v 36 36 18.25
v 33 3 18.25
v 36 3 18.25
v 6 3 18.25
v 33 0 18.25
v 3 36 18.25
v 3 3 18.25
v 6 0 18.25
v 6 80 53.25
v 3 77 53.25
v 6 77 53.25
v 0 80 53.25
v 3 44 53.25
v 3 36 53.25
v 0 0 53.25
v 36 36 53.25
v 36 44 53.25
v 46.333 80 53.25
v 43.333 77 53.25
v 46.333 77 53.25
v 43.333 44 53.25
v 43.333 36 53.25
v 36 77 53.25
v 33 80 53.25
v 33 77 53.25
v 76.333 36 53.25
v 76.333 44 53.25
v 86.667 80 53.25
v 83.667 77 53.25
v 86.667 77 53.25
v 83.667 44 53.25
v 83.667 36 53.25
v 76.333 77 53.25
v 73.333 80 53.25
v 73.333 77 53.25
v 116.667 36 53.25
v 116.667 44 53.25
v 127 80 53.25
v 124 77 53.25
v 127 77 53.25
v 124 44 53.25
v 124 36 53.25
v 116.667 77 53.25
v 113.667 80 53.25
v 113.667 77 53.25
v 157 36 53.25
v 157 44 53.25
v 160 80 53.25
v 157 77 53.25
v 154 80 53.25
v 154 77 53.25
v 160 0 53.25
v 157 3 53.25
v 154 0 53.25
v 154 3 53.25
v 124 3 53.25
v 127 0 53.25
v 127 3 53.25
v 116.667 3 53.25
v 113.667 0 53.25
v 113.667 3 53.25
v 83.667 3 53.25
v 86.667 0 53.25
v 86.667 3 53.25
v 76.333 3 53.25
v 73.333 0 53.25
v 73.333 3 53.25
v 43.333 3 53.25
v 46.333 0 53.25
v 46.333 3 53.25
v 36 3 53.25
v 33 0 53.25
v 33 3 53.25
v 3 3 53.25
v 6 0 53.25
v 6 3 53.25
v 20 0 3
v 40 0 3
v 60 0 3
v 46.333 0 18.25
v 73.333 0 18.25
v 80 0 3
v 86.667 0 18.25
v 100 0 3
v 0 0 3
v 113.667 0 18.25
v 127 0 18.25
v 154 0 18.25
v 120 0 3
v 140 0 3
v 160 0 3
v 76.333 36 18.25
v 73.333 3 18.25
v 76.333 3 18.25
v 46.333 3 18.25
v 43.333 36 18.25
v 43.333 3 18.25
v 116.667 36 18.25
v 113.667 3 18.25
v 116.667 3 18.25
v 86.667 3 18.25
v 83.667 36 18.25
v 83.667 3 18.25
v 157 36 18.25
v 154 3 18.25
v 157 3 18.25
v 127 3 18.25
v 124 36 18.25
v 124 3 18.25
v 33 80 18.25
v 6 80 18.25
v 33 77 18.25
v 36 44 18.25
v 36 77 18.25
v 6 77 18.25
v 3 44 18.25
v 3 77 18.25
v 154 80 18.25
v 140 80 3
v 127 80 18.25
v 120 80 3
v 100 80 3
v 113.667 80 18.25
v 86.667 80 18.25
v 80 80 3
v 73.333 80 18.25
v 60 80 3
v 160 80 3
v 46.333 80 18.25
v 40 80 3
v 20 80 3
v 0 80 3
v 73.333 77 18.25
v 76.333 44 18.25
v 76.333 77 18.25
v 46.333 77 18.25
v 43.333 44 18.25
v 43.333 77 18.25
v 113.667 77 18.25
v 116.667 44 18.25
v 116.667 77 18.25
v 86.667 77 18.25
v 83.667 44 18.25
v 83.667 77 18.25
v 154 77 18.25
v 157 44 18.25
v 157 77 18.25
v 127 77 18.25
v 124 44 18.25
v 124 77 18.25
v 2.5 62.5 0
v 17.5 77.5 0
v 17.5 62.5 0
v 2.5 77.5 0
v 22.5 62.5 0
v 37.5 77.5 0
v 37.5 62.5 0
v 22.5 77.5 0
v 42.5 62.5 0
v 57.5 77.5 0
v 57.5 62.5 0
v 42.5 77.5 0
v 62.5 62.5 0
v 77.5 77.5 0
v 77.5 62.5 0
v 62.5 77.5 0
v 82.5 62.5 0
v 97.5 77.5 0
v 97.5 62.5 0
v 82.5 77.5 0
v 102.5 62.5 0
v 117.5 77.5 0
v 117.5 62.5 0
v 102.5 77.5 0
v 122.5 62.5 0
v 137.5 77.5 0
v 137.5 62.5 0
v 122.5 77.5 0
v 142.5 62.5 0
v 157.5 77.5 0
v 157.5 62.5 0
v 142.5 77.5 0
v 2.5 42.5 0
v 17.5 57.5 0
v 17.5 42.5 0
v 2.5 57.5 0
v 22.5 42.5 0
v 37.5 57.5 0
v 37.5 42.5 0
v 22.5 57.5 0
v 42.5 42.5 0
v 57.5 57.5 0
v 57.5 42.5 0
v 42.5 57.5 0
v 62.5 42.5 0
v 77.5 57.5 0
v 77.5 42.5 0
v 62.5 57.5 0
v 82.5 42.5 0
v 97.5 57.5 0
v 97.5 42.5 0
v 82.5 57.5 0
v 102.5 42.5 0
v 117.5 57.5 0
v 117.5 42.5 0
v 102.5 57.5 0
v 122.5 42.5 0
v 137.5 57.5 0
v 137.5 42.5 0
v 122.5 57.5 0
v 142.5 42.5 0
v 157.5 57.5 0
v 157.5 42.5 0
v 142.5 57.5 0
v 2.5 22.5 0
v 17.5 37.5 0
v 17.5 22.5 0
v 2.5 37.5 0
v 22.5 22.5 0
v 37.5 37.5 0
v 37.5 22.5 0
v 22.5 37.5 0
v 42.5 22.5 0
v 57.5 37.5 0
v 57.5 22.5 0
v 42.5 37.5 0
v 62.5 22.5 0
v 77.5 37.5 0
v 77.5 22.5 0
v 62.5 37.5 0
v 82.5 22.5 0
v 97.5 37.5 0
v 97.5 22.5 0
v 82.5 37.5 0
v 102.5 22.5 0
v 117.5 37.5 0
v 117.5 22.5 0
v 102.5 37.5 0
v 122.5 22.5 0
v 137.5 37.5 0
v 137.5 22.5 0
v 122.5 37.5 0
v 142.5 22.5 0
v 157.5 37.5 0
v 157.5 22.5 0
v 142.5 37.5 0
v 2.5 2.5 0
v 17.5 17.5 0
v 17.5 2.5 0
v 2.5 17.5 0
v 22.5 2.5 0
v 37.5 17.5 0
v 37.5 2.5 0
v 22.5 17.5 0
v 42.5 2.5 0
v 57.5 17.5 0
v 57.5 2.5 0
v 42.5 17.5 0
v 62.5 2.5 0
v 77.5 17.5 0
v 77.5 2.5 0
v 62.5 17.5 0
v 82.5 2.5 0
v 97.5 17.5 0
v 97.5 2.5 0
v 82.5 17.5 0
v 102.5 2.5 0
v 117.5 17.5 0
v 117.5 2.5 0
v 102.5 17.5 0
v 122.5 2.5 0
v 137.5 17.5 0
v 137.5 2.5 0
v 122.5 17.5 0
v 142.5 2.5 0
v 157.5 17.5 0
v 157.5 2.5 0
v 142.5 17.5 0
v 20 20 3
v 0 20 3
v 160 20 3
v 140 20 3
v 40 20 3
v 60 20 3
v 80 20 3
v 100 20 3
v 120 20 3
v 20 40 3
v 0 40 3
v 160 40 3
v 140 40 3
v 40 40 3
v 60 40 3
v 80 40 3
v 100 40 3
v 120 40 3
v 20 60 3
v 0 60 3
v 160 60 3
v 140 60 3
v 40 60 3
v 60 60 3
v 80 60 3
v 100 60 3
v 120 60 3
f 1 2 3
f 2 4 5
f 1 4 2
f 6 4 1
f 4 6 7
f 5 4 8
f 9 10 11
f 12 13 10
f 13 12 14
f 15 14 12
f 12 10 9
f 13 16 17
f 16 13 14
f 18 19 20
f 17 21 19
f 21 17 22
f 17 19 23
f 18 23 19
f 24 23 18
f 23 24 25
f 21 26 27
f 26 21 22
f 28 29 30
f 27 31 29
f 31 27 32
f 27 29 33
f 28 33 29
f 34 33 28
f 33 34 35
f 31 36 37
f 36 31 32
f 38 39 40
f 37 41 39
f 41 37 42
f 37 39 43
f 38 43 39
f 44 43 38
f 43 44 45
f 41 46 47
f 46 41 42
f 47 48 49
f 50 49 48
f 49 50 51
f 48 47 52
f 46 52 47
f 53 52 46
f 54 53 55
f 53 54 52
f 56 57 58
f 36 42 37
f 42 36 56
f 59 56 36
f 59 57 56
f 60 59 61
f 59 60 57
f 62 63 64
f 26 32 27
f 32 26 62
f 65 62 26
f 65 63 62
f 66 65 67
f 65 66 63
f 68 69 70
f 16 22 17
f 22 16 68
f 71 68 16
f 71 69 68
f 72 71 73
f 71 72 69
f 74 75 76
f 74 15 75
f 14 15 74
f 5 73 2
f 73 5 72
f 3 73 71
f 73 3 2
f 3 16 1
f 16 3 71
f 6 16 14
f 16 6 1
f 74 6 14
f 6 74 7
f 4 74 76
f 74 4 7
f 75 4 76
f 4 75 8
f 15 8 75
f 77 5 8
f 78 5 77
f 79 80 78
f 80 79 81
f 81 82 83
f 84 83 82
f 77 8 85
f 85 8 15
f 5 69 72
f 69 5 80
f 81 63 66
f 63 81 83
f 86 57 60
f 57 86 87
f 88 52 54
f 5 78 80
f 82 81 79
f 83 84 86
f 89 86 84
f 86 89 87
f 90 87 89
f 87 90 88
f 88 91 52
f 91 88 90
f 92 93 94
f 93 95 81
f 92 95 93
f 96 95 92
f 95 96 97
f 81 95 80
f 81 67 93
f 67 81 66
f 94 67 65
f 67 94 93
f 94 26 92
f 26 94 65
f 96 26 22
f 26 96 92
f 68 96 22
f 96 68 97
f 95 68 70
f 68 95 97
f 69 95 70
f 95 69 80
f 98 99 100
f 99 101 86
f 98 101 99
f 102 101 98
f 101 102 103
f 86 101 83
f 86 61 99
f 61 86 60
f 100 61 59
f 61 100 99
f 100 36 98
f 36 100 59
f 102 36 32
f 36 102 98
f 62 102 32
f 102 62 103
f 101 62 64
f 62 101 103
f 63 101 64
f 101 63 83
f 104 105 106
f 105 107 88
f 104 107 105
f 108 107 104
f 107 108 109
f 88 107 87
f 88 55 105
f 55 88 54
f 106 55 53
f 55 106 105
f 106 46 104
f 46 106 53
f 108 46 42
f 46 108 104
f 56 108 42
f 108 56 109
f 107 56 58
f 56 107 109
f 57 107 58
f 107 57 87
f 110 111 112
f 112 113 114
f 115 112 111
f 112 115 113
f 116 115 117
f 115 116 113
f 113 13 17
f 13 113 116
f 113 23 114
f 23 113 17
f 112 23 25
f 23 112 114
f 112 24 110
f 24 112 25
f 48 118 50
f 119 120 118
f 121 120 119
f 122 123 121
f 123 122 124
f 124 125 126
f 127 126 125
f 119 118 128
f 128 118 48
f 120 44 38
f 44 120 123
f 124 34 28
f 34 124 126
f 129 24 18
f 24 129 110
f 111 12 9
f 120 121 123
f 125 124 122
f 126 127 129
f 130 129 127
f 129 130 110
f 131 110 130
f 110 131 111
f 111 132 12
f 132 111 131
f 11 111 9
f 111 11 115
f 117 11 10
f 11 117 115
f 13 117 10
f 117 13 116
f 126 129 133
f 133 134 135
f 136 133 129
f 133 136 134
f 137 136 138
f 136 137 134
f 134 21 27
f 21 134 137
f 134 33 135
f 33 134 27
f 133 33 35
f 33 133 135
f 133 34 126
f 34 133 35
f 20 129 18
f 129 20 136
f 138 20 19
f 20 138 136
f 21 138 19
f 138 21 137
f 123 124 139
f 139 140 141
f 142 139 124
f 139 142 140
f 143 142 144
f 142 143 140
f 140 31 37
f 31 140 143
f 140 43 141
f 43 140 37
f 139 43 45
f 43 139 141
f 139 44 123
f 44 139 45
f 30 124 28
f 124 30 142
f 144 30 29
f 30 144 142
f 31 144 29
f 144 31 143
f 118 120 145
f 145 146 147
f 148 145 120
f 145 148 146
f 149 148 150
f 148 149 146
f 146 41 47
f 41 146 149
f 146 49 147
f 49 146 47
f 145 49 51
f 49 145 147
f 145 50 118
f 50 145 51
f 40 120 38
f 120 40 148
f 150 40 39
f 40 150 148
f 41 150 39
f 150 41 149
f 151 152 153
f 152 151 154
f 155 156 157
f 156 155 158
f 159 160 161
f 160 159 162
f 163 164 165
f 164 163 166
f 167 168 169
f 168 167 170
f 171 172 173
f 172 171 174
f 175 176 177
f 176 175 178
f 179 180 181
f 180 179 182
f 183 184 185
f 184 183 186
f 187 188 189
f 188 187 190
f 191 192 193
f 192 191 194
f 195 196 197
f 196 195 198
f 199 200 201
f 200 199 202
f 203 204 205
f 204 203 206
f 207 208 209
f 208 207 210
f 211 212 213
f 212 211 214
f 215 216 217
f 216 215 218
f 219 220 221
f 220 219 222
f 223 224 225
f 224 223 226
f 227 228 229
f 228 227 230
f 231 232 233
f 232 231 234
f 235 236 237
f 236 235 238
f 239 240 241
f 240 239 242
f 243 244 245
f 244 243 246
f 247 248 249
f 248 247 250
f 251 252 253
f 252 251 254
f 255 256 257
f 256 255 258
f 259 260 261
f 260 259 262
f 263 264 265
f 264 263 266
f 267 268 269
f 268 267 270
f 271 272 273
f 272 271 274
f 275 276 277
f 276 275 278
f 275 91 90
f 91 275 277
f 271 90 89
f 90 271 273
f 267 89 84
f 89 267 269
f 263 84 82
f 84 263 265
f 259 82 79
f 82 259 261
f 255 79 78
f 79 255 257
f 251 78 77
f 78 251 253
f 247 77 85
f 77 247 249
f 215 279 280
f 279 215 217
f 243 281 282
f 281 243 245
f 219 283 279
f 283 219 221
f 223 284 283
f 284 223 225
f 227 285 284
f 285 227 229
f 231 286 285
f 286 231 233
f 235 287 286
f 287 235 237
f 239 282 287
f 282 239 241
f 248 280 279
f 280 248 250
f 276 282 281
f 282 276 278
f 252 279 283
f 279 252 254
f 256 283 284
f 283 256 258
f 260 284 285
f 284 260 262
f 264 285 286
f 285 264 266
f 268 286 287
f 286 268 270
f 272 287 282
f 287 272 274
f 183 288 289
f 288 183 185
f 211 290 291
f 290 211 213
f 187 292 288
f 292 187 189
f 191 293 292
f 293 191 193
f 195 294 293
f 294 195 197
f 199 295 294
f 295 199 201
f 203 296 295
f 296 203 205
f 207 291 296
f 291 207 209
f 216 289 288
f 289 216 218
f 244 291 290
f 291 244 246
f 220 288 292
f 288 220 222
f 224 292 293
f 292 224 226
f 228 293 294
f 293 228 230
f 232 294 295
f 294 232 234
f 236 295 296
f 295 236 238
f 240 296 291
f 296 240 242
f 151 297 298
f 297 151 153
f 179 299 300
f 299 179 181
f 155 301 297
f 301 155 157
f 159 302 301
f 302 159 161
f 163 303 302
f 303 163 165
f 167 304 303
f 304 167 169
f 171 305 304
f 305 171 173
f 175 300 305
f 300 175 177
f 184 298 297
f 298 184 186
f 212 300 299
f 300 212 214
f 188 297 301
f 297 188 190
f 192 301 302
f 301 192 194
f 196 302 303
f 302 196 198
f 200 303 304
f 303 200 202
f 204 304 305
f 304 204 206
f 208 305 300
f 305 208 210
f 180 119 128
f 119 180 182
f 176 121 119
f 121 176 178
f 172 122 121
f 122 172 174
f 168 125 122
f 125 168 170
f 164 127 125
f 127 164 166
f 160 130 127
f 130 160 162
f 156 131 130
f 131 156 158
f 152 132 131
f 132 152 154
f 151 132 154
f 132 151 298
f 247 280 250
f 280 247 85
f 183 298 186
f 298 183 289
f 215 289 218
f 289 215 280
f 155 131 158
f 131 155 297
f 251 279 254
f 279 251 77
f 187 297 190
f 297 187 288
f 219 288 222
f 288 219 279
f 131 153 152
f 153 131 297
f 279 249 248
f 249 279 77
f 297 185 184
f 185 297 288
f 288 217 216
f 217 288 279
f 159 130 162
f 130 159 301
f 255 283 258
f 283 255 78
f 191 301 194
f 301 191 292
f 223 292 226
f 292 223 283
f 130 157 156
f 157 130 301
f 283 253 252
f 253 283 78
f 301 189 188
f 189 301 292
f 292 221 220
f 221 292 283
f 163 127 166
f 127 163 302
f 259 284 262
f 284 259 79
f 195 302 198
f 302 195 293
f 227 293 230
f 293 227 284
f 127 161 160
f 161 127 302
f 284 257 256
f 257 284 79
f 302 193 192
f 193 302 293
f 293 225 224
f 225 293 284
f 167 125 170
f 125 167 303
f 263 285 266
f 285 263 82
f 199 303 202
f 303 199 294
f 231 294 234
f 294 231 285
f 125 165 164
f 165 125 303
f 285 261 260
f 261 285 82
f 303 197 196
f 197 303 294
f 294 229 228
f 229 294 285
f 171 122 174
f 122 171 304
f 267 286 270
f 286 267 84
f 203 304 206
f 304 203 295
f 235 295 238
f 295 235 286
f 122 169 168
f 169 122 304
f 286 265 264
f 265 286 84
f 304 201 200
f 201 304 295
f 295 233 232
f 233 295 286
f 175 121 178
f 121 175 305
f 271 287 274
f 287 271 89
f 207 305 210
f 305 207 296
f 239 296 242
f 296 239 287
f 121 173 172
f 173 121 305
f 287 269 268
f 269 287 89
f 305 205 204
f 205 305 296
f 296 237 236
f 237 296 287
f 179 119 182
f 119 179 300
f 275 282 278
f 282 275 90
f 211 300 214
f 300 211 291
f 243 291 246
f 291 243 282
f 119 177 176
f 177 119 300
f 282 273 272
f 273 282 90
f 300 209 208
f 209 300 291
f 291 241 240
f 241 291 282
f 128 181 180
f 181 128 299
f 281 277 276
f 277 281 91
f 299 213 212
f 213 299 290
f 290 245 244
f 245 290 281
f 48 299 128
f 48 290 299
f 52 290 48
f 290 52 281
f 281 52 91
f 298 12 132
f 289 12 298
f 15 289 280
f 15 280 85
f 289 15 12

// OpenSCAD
// file: ../common.scad
BASE_TILE_SIZE=20;
BASE_WIDTH=5;
PEAK_HEIGHT=3;

BOX_HEIGHT = 69;
BOX_CLEARENCE = 15.75;

function box_height() = BOX_HEIGHT;
function box_clearence() = BOX_CLEARENCE;
function max_height() = BOX_HEIGHT - BOX_CLEARENCE;

function y_up() = [90, 0, 0];
function x_up() = [90, 0, 90];

function min_floor_offset(wall_width) = wall_width + PEAK_HEIGHT;
function tri_mid() = BASE_WIDTH / 2;
function triangle() = [[0, 0],[BASE_WIDTH, 0],[tri_mid(), PEAK_HEIGHT]];
function base_tile_size() = BASE_TILE_SIZE;
function peak_height() = PEAK_HEIGHT;

module grid(width, depth, direction) {
    length = (direction == "x") ? width : depth;
    slot_length = (direction == "x") ? depth : width;
    translate_z = (direction == "x") ? -slot_length : 0;
    rot = (direction == "x") ? y_up() : x_up();

    // This is the total additional slots past the initial one
    total_slots = floor(length / BASE_TILE_SIZE);
    
    for (i = [0 : total_slots]) {
        offset = -tri_mid() + BASE_TILE_SIZE * i;
        rotate(rot)
        translate([offset, 0, translate_z])
        linear_extrude(height = slot_length)
        polygon(points=triangle());
    }
}

module grid_slots(width, depth) {
    grid(width, depth, "y");
    grid(width, depth, "x");
}
// file: ../chip_holder.scad
use <common.scad>

WAY_DEEP = 100;

module generate_holder(
    tile_columns = 4,
    tile_rows = 2,
    tile_width = 33,
    tile_depth = 33,
    tile_count = 20,
    tile_height = 1.75,
    wall_width = 3,
    rount_to_full_base = true,
    fit_to_box_height = true
) {
    function getSize(count, tile_size) = count * (tile_size + wall_width) + wall_width;
    function roundFullBase(count, tile_size) = (rount_to_full_base) ? ceil(getSize(count, tile_size) / base_tile_size()) * base_tile_size() : getSize(count, tile_size);
    
    inside_height = tile_count * tile_height;
    min_floor_offset = min_floor_offset(wall_width);
    floor_offset = (fit_to_box_height) ? max_height() - inside_height : min_floor_offset;
    total_width = roundFullBase(tile_columns, tile_width);
    total_depth = roundFullBase(tile_rows, tile_depth);
    min_height = inside_height + floor_offset;
    total_height = (fit_to_box_height) ? max(max_height(), min_height) : min_height;

    module tile_slot() {
        translate([0, 0, 0])
        square([tile_width, tile_depth]);
    }

    module thumb_slot_front() {
        width = tile_width - (wall_width * 2);
        translate([wall_width, -WAY_DEEP, 0])
        square([width, WAY_DEEP]);
    }

    module thumb_slot_back() {
        width = tile_width - (wall_width * 2);
        translate([wall_width, tile_width, 0])
        square([width, WAY_DEEP]);
    }

    module tile_hole(slot_type = "none") {
        box_bottom = floor_offset;
        translate([0, 0, box_bottom])
        linear_extrude(height = inside_height)
        union() {
            tile_slot();
            if (slot_type == "front" || slot_type == "both") {
                thumb_slot_front();
            }
            
            if (slot_type == "back" || slot_type == "both") {
                thumb_slot_back();
            }
        }
    }

    module tile_holes() {
        row_width = tile_depth * tile_rows;
        col_width = tile_width * tile_columns;
        outside_walls = wall_width * 2;
        
        col_spread = (tile_columns > 2) ? (total_width - col_width - outside_walls) / (tile_columns - 1) : 0;
        row_spread = (tile_rows > 1) ? (total_depth - row_width - outside_walls) / (tile_rows - 1) : 0;
        
        for (i = [0 : tile_rows - 1]) {
            for (j = [0 : tile_columns - 1]) {
                slot_type = (tile_rows == 1) ? "both" : (i == 0) ? "front" : (i == tile_rows - 1) ? "back" : "none";
                col_offset = wall_width + ((tile_width + col_spread) * j);
                row_offset = (tile_rows == 1) ?
                    (total_depth - tile_depth) / 2 : 
                    wall_width + ((tile_depth + row_spread) * i);

                translate([col_offset, row_offset, 0])
                tile_hole(slot_type = slot_type);
            }
        }
    }

    difference() {
        cube([total_width, total_depth, total_height]);
        tile_holes();
        grid_slots(total_width, total_depth);
    }
}
// main file
use <../chip_holder.scad>

generate_holder(
    tile_columns = 4,
    tile_rows = 2,
    tile_width = 33,
    tile_depth = 33,
    tile_count = 20,
    tile_height = 1.75,
    wall_width = 3,
    rount_to_full_base = true,
    fit_to_box_height = true
);
